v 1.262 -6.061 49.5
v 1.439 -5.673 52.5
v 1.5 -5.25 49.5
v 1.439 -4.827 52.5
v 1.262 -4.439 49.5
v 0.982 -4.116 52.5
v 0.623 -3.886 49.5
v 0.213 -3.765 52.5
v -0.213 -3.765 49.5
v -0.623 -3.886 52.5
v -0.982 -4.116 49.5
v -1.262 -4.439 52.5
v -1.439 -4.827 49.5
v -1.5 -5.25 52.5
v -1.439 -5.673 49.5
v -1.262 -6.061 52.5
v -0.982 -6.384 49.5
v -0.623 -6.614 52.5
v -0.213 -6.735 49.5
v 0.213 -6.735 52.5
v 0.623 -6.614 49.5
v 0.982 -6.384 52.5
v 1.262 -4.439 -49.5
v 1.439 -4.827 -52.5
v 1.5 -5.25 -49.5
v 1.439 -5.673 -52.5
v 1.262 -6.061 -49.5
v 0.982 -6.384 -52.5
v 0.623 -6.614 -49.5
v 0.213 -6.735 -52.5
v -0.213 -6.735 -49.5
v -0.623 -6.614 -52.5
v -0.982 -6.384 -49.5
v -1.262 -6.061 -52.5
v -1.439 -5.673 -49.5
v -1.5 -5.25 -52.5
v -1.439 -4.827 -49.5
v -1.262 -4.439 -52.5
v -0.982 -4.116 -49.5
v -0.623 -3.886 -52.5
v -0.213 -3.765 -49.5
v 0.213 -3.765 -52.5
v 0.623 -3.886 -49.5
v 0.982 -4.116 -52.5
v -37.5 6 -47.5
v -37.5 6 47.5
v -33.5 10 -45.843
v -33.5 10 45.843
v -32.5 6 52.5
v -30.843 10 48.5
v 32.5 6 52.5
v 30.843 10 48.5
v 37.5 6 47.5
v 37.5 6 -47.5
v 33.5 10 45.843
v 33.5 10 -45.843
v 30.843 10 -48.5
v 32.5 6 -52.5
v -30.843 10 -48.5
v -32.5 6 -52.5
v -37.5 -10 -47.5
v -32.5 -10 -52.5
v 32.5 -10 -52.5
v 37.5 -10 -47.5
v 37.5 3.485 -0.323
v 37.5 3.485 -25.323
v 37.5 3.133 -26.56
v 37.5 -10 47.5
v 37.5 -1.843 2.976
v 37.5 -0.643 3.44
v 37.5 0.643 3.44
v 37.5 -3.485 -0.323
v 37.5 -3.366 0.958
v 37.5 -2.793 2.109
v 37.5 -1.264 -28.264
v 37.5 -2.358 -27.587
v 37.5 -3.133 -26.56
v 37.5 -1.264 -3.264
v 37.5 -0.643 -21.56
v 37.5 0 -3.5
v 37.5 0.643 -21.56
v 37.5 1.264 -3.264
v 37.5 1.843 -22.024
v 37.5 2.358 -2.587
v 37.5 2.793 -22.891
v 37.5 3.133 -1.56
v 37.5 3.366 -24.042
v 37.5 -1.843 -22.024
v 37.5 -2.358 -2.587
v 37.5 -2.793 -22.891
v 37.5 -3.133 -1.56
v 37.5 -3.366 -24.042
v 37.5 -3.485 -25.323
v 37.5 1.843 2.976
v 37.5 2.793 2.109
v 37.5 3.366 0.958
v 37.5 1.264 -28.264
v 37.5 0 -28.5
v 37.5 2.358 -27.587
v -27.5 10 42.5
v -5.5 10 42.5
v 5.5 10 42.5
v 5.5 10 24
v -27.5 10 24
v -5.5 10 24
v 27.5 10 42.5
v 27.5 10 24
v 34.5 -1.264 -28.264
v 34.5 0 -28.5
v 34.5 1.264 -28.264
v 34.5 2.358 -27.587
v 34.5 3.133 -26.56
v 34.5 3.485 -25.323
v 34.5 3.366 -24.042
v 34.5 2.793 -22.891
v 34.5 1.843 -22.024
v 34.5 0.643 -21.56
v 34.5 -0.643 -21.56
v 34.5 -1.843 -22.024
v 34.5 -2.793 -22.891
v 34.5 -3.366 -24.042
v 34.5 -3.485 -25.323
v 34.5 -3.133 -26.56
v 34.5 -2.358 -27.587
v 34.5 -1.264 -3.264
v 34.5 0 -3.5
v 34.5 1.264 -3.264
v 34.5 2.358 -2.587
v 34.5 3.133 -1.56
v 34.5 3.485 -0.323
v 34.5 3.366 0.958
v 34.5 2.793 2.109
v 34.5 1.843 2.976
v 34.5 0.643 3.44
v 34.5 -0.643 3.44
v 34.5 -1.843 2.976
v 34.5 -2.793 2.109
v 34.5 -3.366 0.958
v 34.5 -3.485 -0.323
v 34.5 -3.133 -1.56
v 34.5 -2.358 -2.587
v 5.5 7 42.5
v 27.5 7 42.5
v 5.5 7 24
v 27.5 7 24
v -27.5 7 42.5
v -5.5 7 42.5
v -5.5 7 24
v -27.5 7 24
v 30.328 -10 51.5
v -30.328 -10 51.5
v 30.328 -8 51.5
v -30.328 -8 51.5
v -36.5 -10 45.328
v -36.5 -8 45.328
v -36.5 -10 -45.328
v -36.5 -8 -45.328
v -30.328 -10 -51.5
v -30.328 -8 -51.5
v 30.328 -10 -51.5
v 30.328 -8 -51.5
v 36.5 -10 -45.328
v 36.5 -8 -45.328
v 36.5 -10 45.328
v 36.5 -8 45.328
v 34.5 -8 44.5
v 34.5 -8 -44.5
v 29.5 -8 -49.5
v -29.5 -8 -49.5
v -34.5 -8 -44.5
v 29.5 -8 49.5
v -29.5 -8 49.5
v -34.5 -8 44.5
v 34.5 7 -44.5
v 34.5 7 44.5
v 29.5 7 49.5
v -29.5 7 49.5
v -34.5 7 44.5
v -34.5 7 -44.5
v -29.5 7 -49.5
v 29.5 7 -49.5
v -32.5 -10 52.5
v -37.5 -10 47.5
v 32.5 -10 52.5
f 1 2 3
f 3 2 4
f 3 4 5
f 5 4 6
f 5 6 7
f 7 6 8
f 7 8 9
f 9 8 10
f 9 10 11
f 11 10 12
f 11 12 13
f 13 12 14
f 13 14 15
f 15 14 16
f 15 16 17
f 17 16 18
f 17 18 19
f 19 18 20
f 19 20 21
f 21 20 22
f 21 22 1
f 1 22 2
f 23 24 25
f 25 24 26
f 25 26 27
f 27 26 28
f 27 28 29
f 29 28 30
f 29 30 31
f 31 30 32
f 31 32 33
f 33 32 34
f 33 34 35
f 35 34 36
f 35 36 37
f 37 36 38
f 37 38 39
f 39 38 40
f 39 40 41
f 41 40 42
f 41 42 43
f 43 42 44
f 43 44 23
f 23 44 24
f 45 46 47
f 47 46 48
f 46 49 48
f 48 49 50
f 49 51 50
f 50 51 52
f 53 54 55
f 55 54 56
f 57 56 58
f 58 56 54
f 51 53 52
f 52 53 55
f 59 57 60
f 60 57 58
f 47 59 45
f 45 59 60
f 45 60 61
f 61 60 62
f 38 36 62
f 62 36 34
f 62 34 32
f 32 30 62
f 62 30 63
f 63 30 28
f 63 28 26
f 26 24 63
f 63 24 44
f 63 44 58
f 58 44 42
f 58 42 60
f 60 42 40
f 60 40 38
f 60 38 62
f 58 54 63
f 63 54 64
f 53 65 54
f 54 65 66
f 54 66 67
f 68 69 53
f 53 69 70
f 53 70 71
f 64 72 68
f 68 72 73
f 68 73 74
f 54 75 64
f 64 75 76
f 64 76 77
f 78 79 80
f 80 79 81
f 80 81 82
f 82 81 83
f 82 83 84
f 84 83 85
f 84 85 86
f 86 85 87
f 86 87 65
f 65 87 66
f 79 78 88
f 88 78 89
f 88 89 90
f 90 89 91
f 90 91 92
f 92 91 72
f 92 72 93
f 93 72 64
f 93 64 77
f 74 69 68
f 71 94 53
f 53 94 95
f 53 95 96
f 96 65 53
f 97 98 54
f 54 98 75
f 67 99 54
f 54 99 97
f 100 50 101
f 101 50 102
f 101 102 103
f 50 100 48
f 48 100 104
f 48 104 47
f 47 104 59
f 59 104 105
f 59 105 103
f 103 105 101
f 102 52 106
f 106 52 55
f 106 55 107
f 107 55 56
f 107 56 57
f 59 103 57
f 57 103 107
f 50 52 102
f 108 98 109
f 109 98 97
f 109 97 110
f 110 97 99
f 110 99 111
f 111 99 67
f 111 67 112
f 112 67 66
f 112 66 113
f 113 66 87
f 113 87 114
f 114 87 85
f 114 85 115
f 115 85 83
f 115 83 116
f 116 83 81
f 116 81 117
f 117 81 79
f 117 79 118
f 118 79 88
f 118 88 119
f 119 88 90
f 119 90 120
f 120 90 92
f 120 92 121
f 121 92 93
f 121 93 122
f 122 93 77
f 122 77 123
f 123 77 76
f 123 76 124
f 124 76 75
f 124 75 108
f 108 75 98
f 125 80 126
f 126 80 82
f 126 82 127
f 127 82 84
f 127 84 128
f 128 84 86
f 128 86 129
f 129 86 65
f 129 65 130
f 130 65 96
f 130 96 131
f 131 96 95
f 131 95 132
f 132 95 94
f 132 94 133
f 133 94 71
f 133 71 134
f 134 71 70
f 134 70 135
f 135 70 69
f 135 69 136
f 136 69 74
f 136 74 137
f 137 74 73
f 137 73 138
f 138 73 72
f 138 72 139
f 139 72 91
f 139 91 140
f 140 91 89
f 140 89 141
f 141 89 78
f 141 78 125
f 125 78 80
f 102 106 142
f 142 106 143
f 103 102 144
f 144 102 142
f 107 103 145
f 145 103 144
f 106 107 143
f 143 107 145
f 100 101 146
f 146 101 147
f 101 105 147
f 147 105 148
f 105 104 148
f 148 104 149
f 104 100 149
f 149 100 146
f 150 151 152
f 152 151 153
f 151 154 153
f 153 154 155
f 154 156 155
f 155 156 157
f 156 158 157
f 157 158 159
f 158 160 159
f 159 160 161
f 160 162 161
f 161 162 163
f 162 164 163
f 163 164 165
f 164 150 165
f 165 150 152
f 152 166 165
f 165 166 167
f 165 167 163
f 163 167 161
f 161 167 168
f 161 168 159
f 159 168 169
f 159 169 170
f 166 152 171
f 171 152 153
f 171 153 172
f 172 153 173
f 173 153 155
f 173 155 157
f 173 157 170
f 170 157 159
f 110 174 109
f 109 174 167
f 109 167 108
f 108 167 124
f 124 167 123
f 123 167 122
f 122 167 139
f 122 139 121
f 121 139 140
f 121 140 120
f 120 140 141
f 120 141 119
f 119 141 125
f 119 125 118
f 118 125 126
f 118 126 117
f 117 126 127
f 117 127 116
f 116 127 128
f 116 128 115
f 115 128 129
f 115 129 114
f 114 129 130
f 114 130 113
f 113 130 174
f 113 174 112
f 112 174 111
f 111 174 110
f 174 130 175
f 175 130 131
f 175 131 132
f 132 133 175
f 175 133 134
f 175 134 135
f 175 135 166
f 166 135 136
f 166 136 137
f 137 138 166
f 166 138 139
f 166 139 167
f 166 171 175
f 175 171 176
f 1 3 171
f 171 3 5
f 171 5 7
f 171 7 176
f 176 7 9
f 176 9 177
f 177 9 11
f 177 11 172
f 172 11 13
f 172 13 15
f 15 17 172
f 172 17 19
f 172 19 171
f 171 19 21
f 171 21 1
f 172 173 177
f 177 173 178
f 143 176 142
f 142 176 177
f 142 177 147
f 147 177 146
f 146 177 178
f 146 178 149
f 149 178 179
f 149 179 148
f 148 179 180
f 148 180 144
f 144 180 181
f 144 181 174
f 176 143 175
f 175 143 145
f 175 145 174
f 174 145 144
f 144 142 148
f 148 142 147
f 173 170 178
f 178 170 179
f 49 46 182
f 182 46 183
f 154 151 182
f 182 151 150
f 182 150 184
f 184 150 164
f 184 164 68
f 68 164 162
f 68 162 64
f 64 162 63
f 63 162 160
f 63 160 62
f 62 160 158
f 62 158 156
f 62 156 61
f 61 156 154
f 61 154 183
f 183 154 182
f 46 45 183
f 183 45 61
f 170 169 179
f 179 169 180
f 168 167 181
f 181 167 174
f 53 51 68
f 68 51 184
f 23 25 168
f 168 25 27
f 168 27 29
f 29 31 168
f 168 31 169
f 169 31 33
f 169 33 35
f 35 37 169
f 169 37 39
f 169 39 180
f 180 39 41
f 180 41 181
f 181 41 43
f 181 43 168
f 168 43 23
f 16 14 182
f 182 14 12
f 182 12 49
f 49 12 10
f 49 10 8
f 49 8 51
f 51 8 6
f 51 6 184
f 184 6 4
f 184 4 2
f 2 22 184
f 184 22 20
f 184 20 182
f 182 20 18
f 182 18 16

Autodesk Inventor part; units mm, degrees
ref_plane "YZ Plane" through (0, 0, 0) normal (1, 0, 0) x (0, 1, 0)
ref_plane "XZ Plane" through (0, 0, 0) normal (0, 1, 0) x (-1, 0, 0)
ref_plane "XY Plane" through (0, 0, 0) normal (0, 0, 1) x (1, 0, 0)
sketch "Sketch5" plane through (0, 0, 0) normal (1, 0, 0) x (0, 1, 0)
  line L0 (10, 52.5) -> (-10, 52.5)
  line L1 (-10, 52.5) -> (-10, -52.5)
  line L2 (-10, -52.5) -> (10, -52.5)
  line L3 (10, -52.5) -> (10, 52.5)
  point P0 (0, 0)
  point P1 (10, 0)
  point P2 (0, -52.5)
  dimension "d6" = 20
  dimension "d30" = 105
extrude "Extrusion2" add sketch "Sketch5" along normal mid plane 75
shell "Shell1" thickness 3 removed faces 1 at (-12.5, -10, 17.5)
chamfer "Chamfer4" distance 5 angle 45 8 edges at (37.5, 0, 52.5) (34.5, -1.5, 49.5) (34.5, -1.5, -49.5) (37.5, 0, -52.5) (-37.5, 0, -52.5) (-34.5, -1.5, -49.5) (-37.5, 0, 52.5) (-34.5, -1.5, 49.5)
sketch "Sketch7" plane through (-37.5, -10, -52.5) normal (0, -1, 0) x (1, 0, 0)
  line L0 (3, 8) -> (3, 97) projected
  line L1 (8, 102) -> (67, 102) projected
  line L2 (72, 97) -> (72, 8) projected
  line L3 (67, 3) -> (8, 3) projected
  line L4 (5, 0) -> (70, 0) projected
  line L5 (75, 100) -> (75, 5) projected
  line L6 (5, 105) -> (70, 105) projected
  line L7 (0, 5) -> (0, 100) projected
  line L8 (8, 102) -> (3, 97) projected
  line L9 (72, 97) -> (67, 102) projected
  line L10 (67, 3) -> (72, 8) projected
  line L11 (3, 8) -> (8, 3) projected
  line L12 (0, 100) -> (5, 105) projected
  line L13 (5, 0) -> (0, 5) projected
  line L14 (75, 5) -> (70, 0) projected
  line L15 (70, 105) -> (75, 100) projected
  line L16 (67.8284, 104) -> (7.1716, 104)
  line L17 (7.1716, 104) -> (1, 97.8284)
  line L18 (1, 97.8284) -> (1, 7.1716)
  line L19 (1, 7.1716) -> (7.1716, 1)
  line L20 (7.1716, 1) -> (67.8284, 1)
  line L21 (67.8284, 1) -> (74, 7.1716)
  line L22 (74, 7.1716) -> (74, 97.8284)
  line L23 (74, 97.8284) -> (67.8284, 104)
  dimension "d61" = 2
extrude "Extrusion4" cut sketch "Sketch7" against normal blind 2 contours L23 L22 L21 L20 L19 L18 L17 L16
sketch "Sketch8" plane through (-37.5, 10, 52.5) normal (0, 1, 0) x (1, 0, 0)
  line L0 (32, 10) -> (10, 10)
  line L1 (10, 10) -> (10, 28.5)
  line L2 (10, 28.5) -> (32, 28.5)
  line L3 (32, 28.5) -> (32, 10)
  line L4 (32, 10) -> (10, 28.5) construction
  line L5 (10, 10) -> (32, 28.5) construction
  line L6 (0, 0) -> (0, 105) projected
  line L7 (75, 0) -> (0, 0) projected
  point P0 (37.5, 52.5)
  point P1 (21, 19.25)
  dimension "d35" = 22
  dimension "d36" = 18.5
  dimension "d49" = 10
  dimension "d54" = 10
extrude "Extrusion5" cut sketch "Sketch8" against normal blind 3
mirror "Mirror4" about plane through (0, 0, 0) normal (1, 0, 0) of "Extrusion5"
sketch "Sketch9" plane through (37.5, 0, 0) normal (1, 0, 0) x (0, 0, -1)
  circle A0 centre (0, 0) radius 3.5
  circle A1 centre (0, 0) radius 8.5 construction
  line L0 (-8.5, 0) -> (8.5, 0) construction
  line L1 (8.5, 0) -> (8.5, -13) construction
  line L2 (8.5, -13) -> (-8.5, -13) construction
  line L3 (-8.5, -13) -> (-8.5, 0) construction
  dimension "d43" = 17
  dimension "d41" = 7
  dimension "d45" = 13
  dimension "d46" = 0
extrude "Extrusion6" cut sketch "Sketch9" against normal blind 3
pattern_linear "Rectangular Pattern1" count 2 spacing 25 along (0, 0, -1) of "Extrusion6"
chamfer "Chamfer5" distance 4 angle 45 8 edges at (37.5, 10, 0) (35, 10, 50) (0, 10, 52.5) (-35, 10, 50) (-37.5, 10, 0) (-35, 10, -50) (0, 10, -52.5) (35, 10, -50)
sketch "Sketch10" plane through (32.5, -10, -52.5) normal (0, 0, -1) x (-1, 0, 0)
  line L0 (0, 16) -> (65, 16) projected
  line L1 (0, 0) -> (0, 16) projected
  line L2 (65, 0) -> (0, 0) projected
  line L3 (65, 16) -> (65, 0) projected
  point P0 (32.5, 10)
  point P1 (32.5, 4.75)
  dimension "d65" = 4.75
hole "Hole1" at (0, -5.25, -52.5) direction (0, 0, 1) diameter 3 depth 5
mirror "Mirror5" about plane through (0, 0, 0) normal (0, 0, 1) of "Hole1"
properties part number "Casing-v2-top"
